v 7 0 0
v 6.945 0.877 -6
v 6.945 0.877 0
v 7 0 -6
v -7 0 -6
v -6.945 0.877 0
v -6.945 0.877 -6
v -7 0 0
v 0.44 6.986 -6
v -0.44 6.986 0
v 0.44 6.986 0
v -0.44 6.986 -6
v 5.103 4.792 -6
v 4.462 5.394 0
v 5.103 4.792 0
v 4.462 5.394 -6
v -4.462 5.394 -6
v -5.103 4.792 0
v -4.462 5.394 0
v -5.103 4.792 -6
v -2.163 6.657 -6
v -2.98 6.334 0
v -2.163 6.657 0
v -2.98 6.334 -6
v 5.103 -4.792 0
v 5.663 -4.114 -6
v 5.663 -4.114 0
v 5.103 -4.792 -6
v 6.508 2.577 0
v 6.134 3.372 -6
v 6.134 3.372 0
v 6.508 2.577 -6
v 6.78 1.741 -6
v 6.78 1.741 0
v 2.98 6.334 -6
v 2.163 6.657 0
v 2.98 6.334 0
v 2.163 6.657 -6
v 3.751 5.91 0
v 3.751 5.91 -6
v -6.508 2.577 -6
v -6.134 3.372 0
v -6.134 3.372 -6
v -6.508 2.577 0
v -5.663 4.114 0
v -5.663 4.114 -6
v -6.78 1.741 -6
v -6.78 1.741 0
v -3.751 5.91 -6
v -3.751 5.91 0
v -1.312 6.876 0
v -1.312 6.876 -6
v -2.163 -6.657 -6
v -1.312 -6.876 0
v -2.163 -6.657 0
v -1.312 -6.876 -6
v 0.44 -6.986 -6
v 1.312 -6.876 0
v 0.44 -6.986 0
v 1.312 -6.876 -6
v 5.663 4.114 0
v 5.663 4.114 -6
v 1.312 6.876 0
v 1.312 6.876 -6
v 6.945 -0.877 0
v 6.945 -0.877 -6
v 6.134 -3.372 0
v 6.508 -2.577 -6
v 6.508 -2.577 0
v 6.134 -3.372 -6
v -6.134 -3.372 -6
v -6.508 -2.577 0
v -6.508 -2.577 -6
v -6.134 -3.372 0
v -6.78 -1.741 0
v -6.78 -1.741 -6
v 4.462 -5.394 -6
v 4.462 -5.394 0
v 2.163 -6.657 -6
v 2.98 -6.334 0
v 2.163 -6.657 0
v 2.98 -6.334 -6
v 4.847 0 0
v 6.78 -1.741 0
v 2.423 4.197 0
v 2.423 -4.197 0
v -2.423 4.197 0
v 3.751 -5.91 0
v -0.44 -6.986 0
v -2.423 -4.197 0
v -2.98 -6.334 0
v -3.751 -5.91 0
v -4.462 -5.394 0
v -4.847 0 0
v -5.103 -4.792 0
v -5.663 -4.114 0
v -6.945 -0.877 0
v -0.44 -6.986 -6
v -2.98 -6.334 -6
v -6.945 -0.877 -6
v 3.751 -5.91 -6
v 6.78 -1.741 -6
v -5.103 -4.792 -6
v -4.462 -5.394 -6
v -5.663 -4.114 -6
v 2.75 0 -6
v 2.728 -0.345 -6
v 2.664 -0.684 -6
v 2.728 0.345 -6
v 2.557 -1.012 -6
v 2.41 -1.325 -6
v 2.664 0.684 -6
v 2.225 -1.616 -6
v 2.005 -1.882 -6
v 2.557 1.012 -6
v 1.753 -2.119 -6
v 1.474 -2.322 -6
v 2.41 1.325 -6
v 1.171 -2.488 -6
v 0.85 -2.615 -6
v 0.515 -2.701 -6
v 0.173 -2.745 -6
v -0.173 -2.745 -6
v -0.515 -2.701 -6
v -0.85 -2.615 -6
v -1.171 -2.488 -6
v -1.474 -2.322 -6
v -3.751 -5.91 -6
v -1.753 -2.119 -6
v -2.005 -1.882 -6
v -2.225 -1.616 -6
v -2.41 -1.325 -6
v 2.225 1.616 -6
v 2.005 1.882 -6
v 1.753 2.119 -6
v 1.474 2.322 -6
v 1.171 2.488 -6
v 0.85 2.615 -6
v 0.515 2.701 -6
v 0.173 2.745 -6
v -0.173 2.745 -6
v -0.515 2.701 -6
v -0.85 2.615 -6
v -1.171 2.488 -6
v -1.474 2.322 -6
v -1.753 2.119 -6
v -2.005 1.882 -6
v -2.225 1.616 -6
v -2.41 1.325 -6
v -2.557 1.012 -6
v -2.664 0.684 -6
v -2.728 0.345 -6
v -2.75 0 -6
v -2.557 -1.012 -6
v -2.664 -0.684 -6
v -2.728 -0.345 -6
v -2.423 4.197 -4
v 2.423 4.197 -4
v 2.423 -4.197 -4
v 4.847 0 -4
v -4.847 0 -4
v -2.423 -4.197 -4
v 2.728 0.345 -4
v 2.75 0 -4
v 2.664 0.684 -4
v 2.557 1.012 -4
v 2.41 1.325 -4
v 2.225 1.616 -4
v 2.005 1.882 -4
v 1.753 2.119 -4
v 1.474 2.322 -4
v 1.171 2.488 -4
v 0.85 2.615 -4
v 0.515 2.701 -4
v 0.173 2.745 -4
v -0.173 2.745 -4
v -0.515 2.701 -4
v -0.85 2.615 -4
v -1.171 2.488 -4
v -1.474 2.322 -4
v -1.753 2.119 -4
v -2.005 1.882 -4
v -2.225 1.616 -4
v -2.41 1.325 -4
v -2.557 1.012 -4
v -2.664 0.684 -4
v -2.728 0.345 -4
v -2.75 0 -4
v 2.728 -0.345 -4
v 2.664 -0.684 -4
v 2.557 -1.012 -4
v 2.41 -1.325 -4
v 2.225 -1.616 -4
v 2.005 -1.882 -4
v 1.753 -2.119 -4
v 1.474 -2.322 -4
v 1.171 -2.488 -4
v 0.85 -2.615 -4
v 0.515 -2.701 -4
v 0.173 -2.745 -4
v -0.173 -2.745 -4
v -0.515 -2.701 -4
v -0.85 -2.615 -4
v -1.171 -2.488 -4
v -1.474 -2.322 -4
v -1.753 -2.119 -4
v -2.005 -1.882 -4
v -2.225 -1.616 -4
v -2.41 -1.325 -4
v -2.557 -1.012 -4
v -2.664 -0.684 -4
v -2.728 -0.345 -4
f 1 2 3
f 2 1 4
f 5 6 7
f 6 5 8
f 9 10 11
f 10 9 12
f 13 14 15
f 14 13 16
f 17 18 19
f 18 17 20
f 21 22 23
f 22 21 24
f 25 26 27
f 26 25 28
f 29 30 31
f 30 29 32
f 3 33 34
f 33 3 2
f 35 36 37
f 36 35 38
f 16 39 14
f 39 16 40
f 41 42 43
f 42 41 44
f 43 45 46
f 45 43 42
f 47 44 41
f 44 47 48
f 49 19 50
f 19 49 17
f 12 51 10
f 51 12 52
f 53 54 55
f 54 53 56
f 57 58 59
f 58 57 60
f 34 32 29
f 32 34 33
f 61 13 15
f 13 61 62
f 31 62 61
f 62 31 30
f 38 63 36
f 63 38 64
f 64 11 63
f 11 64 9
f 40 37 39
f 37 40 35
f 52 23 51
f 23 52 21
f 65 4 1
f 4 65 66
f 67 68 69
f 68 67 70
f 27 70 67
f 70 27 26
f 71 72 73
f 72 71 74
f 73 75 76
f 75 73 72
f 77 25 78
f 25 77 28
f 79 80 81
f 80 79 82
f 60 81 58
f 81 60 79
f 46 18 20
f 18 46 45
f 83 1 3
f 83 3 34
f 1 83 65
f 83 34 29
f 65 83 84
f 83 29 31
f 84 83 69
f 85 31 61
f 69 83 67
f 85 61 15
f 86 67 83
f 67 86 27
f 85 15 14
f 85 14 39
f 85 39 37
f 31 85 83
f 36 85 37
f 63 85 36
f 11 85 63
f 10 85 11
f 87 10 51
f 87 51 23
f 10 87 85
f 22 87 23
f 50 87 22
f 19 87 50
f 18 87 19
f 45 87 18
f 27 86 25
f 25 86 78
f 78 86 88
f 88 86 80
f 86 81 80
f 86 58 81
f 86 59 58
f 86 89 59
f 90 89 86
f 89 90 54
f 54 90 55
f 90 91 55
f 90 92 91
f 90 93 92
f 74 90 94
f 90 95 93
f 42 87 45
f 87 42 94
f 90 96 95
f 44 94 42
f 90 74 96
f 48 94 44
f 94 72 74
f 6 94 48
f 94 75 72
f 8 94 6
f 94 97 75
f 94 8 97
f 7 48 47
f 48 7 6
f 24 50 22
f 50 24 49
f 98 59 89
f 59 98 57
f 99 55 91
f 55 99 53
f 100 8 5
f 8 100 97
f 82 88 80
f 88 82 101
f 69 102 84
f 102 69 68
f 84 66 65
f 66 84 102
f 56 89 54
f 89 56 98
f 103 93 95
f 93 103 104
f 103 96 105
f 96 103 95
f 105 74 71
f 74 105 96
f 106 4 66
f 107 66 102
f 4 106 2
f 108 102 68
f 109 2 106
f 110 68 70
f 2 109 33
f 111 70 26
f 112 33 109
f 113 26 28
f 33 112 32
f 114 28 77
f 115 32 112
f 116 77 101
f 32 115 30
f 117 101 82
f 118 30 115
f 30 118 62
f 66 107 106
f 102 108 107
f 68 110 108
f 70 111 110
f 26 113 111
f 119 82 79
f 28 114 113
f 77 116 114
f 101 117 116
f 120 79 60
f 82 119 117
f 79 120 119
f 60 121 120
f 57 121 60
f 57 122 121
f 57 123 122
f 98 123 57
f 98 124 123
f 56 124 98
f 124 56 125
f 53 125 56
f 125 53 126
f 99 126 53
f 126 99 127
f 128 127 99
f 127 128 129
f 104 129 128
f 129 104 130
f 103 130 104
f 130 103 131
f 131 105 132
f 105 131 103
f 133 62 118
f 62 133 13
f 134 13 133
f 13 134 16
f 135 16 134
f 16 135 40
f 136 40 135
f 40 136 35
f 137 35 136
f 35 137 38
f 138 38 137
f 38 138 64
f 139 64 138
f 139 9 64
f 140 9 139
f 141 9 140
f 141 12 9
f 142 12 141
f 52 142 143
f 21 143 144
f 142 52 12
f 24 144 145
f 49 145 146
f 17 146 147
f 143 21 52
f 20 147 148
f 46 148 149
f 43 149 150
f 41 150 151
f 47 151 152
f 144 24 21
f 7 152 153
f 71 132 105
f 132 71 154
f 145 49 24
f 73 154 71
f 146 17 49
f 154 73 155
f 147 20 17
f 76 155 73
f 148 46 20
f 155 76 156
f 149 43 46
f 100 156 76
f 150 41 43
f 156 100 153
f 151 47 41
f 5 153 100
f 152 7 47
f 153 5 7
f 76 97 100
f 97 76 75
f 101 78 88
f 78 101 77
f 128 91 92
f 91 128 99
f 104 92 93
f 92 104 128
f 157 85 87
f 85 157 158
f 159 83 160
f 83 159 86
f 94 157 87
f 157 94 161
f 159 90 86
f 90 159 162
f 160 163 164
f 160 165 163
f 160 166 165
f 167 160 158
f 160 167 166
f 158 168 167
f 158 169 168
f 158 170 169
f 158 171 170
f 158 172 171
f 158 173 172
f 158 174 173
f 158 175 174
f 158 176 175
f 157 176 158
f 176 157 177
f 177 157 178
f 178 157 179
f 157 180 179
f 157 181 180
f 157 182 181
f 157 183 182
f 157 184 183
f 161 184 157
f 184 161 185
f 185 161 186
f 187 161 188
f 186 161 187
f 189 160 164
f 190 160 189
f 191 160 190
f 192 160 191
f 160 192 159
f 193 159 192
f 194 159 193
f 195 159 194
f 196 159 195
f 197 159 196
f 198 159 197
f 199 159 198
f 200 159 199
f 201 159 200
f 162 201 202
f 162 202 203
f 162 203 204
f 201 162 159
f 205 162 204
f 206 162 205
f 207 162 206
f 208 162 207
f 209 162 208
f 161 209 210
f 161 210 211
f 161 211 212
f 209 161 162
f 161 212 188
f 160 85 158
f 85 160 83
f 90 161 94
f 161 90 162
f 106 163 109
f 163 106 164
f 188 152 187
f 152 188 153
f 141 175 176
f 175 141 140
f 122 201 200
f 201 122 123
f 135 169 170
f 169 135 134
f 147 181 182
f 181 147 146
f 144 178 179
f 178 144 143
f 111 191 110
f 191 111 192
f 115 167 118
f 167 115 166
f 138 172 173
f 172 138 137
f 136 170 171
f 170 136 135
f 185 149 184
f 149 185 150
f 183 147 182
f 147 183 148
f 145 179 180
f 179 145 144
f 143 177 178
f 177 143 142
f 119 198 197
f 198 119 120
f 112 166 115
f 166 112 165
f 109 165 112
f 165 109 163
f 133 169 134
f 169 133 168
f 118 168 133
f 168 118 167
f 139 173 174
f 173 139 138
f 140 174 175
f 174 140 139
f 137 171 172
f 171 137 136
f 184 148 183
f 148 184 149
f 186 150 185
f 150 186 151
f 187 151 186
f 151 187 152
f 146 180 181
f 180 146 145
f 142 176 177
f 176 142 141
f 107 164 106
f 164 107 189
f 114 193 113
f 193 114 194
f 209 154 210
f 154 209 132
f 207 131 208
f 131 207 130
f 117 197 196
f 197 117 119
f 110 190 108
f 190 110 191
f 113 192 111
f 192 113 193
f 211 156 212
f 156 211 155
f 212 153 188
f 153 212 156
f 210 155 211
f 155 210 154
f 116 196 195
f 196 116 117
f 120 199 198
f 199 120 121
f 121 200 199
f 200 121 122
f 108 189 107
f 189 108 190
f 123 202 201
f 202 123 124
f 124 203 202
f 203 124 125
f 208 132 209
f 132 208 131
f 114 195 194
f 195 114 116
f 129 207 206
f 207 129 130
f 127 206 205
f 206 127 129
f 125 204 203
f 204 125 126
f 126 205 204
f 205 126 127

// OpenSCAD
$fn = 50;


difference() {
	union() {
		translate(v = [0, 0, -6.0000000000]) {
			cylinder(h = 6.0000000000, r = 7.0000000000);
		}
		translate(v = [0, 0, -4.5000000000]) {
			cylinder(h = 4.5000000000, r = 2.8750000000);
		}
	}
	union() {
		translate(v = [0, 0, 0]) {
			rotate(a = [0, 0, 0]) {
				difference() {
					union() {
						translate(v = [0, 0, -4]) {
							#linear_extrude(height = 4) {
								polygon(points = [[4.8468000000, 0.0000000000], [2.4234000000, 4.1974519271], [-2.4234000000, 4.1974519271], [-4.8468000000, 0.0000000000], [-2.4234000000, -4.1974519271], [2.4234000000, -4.1974519271]]);
							}
						}
					}
					union();
				}
			}
		}
		#translate(v = [0, 0, -100.0000000000]) {
			cylinder(h = 200, r = 2.7500000000);
		}
	}
}
